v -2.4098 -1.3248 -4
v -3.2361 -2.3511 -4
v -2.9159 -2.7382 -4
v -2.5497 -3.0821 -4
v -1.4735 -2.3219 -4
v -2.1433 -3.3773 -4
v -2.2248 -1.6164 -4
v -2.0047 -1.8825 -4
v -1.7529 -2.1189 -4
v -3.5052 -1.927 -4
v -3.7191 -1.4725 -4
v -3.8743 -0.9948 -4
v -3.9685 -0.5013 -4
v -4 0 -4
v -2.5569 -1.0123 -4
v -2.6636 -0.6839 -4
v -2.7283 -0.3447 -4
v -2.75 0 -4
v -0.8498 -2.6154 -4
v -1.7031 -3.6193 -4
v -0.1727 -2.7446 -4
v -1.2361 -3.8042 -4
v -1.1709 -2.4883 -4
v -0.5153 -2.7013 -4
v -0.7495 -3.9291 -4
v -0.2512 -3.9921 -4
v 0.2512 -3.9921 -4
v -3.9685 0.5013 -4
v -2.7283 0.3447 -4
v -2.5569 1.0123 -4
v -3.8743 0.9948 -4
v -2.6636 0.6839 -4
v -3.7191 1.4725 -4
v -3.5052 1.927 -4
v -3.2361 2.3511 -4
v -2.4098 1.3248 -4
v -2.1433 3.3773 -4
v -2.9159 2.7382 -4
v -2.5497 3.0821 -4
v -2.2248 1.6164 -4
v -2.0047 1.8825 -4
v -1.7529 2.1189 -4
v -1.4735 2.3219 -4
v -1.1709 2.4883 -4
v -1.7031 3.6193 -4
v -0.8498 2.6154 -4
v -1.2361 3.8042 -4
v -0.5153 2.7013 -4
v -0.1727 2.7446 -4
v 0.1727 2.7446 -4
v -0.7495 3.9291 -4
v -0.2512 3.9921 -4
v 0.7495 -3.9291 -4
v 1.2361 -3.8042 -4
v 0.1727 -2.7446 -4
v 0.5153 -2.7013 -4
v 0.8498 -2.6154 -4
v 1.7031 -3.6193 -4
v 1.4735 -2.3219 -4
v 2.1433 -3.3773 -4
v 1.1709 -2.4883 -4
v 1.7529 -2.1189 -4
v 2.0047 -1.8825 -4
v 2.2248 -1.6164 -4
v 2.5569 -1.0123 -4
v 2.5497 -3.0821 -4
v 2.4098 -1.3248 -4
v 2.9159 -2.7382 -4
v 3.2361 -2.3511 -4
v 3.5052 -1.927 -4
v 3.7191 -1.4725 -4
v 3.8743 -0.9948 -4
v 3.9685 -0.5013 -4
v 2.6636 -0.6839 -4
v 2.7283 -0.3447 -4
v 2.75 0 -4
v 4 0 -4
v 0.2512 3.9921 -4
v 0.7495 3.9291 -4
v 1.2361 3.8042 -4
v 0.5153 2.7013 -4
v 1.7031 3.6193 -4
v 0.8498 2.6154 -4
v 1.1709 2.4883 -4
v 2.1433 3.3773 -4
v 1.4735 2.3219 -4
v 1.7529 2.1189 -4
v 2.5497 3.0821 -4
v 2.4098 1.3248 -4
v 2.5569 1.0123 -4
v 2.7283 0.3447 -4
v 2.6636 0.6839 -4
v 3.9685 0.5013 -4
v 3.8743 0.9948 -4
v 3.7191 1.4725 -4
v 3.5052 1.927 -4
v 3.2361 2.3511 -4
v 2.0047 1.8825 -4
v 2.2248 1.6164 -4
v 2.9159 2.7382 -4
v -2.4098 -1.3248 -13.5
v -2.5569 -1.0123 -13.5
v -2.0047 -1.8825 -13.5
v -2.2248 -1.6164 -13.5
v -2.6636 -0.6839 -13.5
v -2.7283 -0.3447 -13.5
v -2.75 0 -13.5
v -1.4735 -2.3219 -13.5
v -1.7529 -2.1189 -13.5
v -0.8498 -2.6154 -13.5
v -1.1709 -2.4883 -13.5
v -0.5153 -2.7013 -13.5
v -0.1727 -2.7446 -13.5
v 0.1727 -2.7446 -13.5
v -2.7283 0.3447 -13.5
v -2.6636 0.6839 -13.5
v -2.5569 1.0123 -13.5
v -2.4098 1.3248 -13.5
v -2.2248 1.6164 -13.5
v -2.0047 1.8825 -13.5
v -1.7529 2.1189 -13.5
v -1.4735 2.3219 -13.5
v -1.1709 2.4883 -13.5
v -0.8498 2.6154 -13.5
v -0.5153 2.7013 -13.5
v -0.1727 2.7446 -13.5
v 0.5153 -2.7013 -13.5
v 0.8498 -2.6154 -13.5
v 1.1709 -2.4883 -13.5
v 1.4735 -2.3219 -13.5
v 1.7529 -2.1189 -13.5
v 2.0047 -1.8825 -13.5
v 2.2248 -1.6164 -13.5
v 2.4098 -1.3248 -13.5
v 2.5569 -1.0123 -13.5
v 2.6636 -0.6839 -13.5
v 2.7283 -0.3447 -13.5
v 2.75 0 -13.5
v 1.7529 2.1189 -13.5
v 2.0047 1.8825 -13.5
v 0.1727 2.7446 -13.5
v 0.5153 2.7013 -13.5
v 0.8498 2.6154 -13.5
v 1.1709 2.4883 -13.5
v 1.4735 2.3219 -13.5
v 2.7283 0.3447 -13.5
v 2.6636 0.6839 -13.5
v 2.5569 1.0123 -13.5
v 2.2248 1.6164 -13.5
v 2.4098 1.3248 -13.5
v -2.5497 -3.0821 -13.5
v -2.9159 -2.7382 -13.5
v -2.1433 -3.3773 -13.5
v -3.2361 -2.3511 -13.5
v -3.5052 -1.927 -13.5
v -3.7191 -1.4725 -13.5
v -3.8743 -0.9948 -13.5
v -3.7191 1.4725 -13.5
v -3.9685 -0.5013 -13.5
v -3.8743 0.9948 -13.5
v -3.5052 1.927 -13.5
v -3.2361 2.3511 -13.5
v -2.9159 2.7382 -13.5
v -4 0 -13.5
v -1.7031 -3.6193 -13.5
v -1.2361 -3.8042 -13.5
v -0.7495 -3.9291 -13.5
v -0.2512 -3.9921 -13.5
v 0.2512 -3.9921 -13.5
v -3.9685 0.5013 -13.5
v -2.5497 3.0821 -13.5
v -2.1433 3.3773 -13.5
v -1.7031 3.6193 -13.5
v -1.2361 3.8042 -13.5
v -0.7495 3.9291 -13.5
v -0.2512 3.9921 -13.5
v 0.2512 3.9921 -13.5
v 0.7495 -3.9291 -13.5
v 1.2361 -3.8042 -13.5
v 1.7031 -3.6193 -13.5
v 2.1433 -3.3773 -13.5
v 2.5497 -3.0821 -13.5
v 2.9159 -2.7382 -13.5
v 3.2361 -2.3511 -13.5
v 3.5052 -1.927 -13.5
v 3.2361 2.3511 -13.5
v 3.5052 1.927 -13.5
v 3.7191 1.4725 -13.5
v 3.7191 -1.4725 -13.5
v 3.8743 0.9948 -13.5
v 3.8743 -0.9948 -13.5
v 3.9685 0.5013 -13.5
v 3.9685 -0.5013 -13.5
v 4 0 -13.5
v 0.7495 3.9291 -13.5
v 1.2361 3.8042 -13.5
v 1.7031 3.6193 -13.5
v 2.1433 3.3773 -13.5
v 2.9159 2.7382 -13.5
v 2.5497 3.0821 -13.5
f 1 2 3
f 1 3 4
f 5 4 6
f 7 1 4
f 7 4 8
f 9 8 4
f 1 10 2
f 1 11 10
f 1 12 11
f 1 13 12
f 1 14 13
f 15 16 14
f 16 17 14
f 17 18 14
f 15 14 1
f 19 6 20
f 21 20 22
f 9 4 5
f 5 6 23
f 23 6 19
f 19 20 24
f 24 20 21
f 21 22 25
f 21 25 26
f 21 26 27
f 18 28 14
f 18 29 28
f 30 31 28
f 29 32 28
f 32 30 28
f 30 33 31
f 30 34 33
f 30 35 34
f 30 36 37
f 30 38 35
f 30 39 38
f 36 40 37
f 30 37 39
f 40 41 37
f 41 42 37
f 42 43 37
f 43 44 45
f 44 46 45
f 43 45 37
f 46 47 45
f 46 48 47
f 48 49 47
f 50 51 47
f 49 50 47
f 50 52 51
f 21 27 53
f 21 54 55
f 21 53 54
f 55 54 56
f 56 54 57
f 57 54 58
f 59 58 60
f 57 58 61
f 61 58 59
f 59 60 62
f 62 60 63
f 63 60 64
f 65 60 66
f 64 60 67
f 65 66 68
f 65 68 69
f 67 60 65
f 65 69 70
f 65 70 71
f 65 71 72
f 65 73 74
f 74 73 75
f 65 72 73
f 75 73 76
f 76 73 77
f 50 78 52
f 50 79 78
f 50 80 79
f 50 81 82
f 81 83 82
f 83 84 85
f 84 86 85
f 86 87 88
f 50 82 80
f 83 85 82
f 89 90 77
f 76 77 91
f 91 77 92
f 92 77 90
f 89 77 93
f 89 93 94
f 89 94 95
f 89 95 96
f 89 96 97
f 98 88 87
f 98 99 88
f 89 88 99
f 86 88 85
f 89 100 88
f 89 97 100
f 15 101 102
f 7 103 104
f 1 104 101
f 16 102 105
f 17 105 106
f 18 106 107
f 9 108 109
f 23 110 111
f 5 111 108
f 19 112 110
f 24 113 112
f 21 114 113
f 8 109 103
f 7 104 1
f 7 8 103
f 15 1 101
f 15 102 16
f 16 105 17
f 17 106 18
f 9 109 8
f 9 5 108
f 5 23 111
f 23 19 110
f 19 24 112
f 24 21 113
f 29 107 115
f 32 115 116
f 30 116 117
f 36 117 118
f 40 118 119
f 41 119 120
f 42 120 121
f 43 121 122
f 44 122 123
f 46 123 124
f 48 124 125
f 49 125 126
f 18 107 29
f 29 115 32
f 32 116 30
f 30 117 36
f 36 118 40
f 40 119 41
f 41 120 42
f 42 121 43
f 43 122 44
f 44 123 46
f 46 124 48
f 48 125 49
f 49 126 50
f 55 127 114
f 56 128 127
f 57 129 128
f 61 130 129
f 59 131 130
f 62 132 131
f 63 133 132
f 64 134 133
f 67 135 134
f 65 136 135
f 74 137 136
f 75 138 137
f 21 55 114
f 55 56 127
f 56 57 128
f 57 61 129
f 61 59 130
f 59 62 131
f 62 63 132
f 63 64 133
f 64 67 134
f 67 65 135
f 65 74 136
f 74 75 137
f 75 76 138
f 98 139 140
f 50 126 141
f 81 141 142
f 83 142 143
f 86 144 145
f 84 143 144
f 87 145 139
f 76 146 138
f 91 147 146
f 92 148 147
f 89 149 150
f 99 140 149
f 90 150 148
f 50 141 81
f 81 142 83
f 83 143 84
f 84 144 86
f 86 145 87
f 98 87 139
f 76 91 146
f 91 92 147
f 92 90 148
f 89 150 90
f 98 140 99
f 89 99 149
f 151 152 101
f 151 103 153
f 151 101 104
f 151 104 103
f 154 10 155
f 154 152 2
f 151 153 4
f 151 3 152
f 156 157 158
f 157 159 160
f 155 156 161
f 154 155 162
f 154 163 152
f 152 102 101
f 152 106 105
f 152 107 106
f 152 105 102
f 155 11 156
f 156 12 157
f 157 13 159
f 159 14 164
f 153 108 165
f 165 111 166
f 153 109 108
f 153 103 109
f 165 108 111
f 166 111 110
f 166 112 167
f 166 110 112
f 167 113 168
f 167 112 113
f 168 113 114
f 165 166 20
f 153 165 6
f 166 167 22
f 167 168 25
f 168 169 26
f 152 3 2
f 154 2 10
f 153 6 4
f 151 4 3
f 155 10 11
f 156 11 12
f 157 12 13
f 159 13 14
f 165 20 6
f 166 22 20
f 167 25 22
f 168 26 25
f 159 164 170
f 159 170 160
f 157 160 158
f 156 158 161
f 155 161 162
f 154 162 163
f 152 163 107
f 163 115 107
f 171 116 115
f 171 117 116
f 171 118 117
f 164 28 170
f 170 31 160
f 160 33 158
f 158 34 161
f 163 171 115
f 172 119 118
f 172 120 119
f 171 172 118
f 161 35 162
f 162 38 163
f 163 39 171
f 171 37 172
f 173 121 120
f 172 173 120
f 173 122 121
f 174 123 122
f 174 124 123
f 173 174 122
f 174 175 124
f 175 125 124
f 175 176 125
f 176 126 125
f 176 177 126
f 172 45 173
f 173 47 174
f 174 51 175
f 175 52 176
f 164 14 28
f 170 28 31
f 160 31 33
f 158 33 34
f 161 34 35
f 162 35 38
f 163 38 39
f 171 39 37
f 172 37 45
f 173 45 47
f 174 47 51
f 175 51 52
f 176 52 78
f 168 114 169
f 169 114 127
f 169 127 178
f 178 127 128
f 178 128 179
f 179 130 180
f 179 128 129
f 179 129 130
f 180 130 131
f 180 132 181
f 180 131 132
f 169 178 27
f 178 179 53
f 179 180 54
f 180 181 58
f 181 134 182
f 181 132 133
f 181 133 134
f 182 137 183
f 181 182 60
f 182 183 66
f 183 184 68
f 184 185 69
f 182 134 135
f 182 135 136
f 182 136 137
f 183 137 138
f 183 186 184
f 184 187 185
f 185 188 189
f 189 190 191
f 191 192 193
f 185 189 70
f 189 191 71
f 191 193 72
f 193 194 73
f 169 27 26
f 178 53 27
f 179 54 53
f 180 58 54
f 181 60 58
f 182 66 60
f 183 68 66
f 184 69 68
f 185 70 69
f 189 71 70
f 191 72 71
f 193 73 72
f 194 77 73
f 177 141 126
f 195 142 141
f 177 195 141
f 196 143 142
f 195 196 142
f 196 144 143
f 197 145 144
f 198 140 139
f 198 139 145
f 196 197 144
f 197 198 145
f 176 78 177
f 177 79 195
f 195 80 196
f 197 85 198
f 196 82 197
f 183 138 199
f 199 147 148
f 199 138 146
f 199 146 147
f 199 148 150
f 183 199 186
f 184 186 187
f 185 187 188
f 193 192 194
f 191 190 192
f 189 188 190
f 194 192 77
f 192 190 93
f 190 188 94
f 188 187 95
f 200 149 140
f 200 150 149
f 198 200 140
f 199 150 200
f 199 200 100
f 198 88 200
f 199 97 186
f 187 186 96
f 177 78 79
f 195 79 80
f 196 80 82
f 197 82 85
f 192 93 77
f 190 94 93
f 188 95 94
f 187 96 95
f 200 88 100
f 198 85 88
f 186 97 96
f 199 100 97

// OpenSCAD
$fn = 50;

difference() {
	union() {
		translate(v = [0, 0, -13.5]) {
			cylinder(h = 13.5, r = 4.0);
		}
	}
	union() {
		translate(v = [0, 0, 0]) {
			rotate(a = [0, 0, 0]) {
				difference() {
					union() {
						translate(v = [0, 0, -4]) {
							linear_extrude(height = 4) {
								polygon(points = [[4.8468, 0.0], [2.4234000000000004, 4.197451927062417], [-2.423399999999999, 4.197451927062417], [-4.8468, 5.935618106107392e-16], [-2.423400000000002, -4.197451927062416], [2.423399999999997, -4.197451927062419]]);
							}
						}
					}
					union();
				}
			}
		}
		#translate(v = [0, 0, -100.0]) {
			cylinder(h = 200, r = 2.75);
		}
	}
}
